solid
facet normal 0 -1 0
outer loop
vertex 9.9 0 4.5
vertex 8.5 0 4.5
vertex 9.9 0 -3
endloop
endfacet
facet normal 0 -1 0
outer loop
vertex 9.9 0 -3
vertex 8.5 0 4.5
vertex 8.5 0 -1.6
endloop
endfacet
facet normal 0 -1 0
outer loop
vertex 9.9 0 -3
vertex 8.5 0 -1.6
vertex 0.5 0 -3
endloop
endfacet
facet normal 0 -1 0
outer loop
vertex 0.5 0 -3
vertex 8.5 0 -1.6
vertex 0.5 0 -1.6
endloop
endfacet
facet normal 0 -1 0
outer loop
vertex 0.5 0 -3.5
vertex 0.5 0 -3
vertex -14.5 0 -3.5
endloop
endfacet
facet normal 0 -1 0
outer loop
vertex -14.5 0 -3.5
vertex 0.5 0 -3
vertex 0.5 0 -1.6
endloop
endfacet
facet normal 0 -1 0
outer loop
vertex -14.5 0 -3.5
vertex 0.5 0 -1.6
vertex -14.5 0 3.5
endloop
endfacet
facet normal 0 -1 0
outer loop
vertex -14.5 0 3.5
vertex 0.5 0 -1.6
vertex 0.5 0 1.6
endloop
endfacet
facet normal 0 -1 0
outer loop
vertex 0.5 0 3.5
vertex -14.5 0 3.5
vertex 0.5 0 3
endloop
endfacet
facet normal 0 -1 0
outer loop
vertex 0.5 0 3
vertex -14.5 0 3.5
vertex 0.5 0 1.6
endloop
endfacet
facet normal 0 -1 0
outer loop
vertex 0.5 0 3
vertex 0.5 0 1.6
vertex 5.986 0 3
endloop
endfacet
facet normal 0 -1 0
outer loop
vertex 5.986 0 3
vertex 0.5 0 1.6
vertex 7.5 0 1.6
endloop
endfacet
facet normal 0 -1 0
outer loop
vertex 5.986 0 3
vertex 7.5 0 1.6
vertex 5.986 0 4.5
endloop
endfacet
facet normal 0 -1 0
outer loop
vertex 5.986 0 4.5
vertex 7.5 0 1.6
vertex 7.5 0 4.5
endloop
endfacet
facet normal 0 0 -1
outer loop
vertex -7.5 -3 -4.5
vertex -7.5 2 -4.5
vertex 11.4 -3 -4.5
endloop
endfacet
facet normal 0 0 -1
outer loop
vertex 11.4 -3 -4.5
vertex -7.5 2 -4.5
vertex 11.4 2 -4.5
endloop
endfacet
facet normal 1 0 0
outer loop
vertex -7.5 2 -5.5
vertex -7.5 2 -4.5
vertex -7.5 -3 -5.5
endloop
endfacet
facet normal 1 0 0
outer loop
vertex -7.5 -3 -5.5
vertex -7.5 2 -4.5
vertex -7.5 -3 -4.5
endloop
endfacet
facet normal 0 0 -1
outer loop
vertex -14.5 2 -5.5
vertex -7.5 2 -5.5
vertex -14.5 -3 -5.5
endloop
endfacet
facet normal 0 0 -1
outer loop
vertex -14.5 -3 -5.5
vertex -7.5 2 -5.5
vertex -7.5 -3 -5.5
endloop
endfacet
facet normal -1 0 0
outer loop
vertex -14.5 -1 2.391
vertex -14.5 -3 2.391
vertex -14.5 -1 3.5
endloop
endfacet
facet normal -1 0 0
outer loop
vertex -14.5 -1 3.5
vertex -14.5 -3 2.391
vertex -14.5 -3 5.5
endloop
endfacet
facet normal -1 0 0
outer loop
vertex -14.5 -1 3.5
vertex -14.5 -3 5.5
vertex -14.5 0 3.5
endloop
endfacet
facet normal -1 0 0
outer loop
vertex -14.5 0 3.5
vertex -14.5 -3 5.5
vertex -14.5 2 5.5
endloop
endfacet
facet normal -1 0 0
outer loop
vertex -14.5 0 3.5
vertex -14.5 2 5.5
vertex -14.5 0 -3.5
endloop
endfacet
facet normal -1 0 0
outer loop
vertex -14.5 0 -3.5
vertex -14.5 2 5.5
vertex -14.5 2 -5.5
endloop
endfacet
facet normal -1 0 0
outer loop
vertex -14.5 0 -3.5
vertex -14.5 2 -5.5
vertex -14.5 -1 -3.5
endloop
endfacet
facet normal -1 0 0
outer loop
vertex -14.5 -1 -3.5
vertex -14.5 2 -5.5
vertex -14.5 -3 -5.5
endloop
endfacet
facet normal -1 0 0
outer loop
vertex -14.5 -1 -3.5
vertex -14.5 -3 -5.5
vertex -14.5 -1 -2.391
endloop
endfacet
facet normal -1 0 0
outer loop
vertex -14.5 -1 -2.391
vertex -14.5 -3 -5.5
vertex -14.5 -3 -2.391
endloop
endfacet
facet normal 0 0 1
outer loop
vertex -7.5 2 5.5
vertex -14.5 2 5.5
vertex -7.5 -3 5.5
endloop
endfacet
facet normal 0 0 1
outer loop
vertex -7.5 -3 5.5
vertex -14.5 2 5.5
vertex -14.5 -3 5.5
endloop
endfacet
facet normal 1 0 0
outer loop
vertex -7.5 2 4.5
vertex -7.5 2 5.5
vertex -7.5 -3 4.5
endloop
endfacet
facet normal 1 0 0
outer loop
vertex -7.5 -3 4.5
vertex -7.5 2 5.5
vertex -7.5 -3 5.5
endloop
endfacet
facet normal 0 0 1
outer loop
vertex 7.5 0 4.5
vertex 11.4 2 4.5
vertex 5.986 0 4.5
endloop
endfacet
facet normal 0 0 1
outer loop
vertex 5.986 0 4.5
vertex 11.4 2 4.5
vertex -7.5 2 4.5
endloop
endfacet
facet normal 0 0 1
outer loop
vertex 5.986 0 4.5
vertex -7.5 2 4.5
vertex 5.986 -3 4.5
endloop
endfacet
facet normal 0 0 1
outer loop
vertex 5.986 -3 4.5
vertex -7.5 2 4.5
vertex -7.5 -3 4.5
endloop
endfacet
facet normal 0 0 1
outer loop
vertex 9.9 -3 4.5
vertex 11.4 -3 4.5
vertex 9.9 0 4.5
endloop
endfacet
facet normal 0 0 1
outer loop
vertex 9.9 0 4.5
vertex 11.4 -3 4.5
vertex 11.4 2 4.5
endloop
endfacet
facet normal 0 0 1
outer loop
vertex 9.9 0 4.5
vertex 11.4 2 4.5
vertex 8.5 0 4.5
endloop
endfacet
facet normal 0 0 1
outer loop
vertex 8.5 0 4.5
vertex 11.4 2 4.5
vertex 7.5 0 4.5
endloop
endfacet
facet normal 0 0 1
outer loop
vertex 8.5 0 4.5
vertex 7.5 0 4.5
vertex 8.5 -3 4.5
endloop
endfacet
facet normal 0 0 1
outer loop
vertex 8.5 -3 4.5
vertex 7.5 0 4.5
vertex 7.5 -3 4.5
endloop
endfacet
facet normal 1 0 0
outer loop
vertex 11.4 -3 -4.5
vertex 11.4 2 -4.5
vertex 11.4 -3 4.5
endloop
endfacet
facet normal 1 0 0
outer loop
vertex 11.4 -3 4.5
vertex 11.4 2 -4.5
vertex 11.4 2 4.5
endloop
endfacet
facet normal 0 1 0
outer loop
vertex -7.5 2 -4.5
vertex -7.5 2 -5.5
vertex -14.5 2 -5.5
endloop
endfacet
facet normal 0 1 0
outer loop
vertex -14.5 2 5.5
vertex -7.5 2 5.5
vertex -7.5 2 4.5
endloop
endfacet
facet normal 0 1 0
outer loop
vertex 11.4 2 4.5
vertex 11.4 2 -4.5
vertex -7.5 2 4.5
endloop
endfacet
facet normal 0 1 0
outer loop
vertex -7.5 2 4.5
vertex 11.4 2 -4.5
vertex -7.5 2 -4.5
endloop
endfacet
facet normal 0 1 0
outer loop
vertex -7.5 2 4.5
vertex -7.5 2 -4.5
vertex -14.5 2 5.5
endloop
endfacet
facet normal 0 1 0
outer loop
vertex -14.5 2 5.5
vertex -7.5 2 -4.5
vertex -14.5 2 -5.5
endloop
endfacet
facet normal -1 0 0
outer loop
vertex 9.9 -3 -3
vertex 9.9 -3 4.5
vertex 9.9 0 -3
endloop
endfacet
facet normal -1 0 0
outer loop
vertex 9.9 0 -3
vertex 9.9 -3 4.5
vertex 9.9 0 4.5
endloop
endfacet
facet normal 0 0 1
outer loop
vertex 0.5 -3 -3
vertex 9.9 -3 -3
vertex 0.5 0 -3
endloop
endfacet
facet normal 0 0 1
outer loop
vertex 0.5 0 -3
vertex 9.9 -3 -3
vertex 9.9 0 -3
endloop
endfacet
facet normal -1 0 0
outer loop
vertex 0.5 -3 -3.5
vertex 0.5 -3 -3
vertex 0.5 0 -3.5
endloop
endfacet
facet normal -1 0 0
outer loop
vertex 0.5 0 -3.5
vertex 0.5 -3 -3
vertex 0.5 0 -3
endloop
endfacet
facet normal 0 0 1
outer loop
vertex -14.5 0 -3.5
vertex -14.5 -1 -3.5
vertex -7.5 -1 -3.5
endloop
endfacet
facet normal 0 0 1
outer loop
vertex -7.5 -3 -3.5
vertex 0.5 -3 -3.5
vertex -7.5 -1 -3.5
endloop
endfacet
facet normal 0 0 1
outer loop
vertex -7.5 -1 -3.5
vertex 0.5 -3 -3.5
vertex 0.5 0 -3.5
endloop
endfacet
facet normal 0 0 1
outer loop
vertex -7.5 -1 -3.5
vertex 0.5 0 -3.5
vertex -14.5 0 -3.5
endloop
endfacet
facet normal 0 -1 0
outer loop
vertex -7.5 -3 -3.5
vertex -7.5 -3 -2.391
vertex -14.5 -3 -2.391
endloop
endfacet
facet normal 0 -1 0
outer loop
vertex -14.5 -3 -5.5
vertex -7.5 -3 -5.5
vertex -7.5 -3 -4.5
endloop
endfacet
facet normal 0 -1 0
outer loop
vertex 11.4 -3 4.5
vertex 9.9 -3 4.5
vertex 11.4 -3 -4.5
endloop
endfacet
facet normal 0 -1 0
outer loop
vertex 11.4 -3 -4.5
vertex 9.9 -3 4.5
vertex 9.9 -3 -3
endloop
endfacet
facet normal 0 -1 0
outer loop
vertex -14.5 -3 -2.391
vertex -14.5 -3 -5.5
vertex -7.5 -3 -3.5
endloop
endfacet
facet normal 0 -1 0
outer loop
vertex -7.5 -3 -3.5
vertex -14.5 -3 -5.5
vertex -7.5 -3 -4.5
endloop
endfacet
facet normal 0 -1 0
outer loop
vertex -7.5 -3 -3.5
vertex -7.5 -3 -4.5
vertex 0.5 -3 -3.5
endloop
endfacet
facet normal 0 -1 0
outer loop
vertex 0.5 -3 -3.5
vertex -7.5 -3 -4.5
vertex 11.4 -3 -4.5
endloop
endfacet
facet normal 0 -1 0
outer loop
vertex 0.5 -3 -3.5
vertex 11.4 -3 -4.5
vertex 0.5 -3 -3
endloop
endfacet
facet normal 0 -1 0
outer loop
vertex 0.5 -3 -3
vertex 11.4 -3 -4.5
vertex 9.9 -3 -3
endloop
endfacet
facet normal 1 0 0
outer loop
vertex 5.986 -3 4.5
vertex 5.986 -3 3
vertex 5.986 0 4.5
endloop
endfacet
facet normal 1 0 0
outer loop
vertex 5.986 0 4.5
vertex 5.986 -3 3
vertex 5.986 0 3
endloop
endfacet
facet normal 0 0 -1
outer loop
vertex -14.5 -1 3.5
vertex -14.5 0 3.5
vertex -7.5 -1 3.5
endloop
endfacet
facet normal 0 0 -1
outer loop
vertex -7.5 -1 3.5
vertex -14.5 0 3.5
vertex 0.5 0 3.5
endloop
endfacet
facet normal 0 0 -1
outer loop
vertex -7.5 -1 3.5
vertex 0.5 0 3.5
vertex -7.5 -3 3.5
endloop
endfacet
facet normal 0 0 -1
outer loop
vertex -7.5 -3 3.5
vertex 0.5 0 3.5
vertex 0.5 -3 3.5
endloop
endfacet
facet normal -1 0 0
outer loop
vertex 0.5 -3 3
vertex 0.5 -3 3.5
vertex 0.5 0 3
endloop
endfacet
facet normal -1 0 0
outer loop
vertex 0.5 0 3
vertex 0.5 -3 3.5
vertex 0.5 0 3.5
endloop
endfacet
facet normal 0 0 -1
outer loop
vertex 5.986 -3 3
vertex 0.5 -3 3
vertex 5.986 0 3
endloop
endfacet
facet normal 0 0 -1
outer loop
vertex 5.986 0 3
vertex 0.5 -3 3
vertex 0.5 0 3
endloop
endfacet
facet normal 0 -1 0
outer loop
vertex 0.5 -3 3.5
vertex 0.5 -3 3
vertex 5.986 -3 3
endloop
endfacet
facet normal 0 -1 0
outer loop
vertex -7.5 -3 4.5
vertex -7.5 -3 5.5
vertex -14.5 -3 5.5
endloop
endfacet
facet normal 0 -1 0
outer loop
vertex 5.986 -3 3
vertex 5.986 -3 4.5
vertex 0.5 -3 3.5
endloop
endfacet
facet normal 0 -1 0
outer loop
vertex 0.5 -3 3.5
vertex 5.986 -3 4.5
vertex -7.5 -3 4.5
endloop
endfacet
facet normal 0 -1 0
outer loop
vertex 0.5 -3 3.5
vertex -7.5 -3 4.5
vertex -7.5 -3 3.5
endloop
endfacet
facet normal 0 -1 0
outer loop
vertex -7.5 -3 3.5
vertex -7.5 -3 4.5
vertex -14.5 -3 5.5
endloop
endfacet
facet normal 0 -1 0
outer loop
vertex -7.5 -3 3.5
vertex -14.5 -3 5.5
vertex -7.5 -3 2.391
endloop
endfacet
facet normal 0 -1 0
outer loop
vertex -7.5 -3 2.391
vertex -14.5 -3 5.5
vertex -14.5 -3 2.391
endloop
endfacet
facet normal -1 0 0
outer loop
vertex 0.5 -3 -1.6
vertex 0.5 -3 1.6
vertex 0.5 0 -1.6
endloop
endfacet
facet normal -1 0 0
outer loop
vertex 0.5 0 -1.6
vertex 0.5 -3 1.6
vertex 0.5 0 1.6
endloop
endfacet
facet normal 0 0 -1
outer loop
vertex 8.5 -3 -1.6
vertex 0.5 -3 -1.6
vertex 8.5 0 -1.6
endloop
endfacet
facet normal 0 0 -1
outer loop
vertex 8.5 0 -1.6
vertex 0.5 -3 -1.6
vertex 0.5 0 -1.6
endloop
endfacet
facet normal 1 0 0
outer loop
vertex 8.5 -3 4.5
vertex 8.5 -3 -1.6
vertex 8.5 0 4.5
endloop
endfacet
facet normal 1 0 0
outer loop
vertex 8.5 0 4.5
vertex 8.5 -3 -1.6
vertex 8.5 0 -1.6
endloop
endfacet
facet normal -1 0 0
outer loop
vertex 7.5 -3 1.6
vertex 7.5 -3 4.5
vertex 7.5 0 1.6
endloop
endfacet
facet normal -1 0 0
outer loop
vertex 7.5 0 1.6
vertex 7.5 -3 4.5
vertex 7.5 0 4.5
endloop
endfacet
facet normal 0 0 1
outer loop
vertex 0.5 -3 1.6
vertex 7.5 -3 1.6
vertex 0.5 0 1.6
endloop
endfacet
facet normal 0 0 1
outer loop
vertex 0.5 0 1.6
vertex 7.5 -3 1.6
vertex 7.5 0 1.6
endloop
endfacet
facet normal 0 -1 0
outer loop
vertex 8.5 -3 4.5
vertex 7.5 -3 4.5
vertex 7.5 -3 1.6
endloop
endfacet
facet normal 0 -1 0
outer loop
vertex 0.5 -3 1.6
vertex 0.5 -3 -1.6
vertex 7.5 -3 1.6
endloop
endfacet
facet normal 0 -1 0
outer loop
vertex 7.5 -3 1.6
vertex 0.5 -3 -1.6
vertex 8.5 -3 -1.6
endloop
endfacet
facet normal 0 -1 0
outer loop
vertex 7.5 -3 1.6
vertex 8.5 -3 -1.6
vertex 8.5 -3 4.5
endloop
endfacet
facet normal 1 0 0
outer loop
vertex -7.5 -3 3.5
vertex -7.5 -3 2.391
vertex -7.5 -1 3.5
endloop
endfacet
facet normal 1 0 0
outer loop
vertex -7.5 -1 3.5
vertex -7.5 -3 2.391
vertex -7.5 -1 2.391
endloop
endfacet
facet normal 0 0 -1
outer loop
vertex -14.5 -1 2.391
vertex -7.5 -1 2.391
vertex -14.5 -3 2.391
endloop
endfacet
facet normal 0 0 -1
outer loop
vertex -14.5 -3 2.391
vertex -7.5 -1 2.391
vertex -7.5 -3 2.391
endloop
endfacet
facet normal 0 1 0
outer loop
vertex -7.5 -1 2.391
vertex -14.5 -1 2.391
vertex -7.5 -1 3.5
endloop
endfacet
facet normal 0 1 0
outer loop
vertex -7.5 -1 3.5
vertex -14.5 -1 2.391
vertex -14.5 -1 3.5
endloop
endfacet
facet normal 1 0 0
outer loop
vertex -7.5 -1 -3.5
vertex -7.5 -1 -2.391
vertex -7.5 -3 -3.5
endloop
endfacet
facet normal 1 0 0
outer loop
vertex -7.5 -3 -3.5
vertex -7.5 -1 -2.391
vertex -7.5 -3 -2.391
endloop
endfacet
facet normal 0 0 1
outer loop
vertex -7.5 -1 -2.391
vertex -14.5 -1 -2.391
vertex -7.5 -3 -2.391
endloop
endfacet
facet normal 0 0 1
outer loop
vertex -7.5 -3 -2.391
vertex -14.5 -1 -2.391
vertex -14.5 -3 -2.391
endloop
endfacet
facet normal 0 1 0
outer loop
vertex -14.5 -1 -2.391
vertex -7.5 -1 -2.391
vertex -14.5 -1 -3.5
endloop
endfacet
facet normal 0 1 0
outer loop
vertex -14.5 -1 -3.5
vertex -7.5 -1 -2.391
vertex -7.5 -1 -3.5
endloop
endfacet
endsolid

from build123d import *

# Parameters (mm, degrees)
BOSS_EXTRUDE1_DEPTH = 2
BOSS_EXTRUDE2_DEPTH = 3
SKETCH3_W           = 7
SKETCH3_H           = 3.108863517
BOSS_EXTRUDE3_DEPTH = 2


with BuildPart() as part:
    # Sketch1 → Boss-Extrude1 (new body)
    with BuildSketch(Plane(origin=(0, 0, 0), x_dir=(1, 0, 0), z_dir=(0, 1, 0))):
        Polygon((-7.5, -4.5), (7.5, -4.5), (11.4, -4.5), (11.4, 4.5), (7.5, 4.5), (-7.5, 4.5), (-7.5, 5.5), (-14.5, 5.5), (-14.5, -5.5), (-7.5, -5.5), align=None)
    extrude(amount=BOSS_EXTRUDE1_DEPTH)

    # Sketch2 → Boss-Extrude2 (add)
    with BuildSketch(Plane(origin=(0, 0, 0), x_dir=(1, 0, 0), z_dir=(0, 1, 0))):
        Polygon((7.5, 4.5), (-7.5, 4.5), (-7.5, 5.5), (-14.5, 5.5), (-14.5, 3.5), (0.5, 3.5), (0.5, 3), (7.5, 3), (9.9, 3), (9.9, -4.5), (11.4, -4.5), (11.4, 4.5), align=None)
        Polygon((-7.5, -4.5), (-7.5, -5.5), (-14.5, -5.5), (-14.5, -3.5), (0.5, -3.5), (0.5, -3), (5.986157355, -3), (5.986157355, -4.5), align=None)
        Polygon((0.5, 1.6), (7.5, 1.6), (8.5, 1.6), (8.5, -4.5), (7.5, -4.5), (7.5, -1.6), (0.5, -1.6), align=None)
    extrude(amount=-BOSS_EXTRUDE2_DEPTH)

    # Sketch3 → Boss-Extrude3 (add)
    with BuildSketch(Plane.XZ.offset(3)):
        with Locations((-11, 3.945568242)):
            Rectangle(SKETCH3_W, SKETCH3_H)
        with Locations((-11, -3.945568242)):
            Rectangle(SKETCH3_W, SKETCH3_H)
    extrude(amount=-BOSS_EXTRUDE3_DEPTH)


solid = part.part
